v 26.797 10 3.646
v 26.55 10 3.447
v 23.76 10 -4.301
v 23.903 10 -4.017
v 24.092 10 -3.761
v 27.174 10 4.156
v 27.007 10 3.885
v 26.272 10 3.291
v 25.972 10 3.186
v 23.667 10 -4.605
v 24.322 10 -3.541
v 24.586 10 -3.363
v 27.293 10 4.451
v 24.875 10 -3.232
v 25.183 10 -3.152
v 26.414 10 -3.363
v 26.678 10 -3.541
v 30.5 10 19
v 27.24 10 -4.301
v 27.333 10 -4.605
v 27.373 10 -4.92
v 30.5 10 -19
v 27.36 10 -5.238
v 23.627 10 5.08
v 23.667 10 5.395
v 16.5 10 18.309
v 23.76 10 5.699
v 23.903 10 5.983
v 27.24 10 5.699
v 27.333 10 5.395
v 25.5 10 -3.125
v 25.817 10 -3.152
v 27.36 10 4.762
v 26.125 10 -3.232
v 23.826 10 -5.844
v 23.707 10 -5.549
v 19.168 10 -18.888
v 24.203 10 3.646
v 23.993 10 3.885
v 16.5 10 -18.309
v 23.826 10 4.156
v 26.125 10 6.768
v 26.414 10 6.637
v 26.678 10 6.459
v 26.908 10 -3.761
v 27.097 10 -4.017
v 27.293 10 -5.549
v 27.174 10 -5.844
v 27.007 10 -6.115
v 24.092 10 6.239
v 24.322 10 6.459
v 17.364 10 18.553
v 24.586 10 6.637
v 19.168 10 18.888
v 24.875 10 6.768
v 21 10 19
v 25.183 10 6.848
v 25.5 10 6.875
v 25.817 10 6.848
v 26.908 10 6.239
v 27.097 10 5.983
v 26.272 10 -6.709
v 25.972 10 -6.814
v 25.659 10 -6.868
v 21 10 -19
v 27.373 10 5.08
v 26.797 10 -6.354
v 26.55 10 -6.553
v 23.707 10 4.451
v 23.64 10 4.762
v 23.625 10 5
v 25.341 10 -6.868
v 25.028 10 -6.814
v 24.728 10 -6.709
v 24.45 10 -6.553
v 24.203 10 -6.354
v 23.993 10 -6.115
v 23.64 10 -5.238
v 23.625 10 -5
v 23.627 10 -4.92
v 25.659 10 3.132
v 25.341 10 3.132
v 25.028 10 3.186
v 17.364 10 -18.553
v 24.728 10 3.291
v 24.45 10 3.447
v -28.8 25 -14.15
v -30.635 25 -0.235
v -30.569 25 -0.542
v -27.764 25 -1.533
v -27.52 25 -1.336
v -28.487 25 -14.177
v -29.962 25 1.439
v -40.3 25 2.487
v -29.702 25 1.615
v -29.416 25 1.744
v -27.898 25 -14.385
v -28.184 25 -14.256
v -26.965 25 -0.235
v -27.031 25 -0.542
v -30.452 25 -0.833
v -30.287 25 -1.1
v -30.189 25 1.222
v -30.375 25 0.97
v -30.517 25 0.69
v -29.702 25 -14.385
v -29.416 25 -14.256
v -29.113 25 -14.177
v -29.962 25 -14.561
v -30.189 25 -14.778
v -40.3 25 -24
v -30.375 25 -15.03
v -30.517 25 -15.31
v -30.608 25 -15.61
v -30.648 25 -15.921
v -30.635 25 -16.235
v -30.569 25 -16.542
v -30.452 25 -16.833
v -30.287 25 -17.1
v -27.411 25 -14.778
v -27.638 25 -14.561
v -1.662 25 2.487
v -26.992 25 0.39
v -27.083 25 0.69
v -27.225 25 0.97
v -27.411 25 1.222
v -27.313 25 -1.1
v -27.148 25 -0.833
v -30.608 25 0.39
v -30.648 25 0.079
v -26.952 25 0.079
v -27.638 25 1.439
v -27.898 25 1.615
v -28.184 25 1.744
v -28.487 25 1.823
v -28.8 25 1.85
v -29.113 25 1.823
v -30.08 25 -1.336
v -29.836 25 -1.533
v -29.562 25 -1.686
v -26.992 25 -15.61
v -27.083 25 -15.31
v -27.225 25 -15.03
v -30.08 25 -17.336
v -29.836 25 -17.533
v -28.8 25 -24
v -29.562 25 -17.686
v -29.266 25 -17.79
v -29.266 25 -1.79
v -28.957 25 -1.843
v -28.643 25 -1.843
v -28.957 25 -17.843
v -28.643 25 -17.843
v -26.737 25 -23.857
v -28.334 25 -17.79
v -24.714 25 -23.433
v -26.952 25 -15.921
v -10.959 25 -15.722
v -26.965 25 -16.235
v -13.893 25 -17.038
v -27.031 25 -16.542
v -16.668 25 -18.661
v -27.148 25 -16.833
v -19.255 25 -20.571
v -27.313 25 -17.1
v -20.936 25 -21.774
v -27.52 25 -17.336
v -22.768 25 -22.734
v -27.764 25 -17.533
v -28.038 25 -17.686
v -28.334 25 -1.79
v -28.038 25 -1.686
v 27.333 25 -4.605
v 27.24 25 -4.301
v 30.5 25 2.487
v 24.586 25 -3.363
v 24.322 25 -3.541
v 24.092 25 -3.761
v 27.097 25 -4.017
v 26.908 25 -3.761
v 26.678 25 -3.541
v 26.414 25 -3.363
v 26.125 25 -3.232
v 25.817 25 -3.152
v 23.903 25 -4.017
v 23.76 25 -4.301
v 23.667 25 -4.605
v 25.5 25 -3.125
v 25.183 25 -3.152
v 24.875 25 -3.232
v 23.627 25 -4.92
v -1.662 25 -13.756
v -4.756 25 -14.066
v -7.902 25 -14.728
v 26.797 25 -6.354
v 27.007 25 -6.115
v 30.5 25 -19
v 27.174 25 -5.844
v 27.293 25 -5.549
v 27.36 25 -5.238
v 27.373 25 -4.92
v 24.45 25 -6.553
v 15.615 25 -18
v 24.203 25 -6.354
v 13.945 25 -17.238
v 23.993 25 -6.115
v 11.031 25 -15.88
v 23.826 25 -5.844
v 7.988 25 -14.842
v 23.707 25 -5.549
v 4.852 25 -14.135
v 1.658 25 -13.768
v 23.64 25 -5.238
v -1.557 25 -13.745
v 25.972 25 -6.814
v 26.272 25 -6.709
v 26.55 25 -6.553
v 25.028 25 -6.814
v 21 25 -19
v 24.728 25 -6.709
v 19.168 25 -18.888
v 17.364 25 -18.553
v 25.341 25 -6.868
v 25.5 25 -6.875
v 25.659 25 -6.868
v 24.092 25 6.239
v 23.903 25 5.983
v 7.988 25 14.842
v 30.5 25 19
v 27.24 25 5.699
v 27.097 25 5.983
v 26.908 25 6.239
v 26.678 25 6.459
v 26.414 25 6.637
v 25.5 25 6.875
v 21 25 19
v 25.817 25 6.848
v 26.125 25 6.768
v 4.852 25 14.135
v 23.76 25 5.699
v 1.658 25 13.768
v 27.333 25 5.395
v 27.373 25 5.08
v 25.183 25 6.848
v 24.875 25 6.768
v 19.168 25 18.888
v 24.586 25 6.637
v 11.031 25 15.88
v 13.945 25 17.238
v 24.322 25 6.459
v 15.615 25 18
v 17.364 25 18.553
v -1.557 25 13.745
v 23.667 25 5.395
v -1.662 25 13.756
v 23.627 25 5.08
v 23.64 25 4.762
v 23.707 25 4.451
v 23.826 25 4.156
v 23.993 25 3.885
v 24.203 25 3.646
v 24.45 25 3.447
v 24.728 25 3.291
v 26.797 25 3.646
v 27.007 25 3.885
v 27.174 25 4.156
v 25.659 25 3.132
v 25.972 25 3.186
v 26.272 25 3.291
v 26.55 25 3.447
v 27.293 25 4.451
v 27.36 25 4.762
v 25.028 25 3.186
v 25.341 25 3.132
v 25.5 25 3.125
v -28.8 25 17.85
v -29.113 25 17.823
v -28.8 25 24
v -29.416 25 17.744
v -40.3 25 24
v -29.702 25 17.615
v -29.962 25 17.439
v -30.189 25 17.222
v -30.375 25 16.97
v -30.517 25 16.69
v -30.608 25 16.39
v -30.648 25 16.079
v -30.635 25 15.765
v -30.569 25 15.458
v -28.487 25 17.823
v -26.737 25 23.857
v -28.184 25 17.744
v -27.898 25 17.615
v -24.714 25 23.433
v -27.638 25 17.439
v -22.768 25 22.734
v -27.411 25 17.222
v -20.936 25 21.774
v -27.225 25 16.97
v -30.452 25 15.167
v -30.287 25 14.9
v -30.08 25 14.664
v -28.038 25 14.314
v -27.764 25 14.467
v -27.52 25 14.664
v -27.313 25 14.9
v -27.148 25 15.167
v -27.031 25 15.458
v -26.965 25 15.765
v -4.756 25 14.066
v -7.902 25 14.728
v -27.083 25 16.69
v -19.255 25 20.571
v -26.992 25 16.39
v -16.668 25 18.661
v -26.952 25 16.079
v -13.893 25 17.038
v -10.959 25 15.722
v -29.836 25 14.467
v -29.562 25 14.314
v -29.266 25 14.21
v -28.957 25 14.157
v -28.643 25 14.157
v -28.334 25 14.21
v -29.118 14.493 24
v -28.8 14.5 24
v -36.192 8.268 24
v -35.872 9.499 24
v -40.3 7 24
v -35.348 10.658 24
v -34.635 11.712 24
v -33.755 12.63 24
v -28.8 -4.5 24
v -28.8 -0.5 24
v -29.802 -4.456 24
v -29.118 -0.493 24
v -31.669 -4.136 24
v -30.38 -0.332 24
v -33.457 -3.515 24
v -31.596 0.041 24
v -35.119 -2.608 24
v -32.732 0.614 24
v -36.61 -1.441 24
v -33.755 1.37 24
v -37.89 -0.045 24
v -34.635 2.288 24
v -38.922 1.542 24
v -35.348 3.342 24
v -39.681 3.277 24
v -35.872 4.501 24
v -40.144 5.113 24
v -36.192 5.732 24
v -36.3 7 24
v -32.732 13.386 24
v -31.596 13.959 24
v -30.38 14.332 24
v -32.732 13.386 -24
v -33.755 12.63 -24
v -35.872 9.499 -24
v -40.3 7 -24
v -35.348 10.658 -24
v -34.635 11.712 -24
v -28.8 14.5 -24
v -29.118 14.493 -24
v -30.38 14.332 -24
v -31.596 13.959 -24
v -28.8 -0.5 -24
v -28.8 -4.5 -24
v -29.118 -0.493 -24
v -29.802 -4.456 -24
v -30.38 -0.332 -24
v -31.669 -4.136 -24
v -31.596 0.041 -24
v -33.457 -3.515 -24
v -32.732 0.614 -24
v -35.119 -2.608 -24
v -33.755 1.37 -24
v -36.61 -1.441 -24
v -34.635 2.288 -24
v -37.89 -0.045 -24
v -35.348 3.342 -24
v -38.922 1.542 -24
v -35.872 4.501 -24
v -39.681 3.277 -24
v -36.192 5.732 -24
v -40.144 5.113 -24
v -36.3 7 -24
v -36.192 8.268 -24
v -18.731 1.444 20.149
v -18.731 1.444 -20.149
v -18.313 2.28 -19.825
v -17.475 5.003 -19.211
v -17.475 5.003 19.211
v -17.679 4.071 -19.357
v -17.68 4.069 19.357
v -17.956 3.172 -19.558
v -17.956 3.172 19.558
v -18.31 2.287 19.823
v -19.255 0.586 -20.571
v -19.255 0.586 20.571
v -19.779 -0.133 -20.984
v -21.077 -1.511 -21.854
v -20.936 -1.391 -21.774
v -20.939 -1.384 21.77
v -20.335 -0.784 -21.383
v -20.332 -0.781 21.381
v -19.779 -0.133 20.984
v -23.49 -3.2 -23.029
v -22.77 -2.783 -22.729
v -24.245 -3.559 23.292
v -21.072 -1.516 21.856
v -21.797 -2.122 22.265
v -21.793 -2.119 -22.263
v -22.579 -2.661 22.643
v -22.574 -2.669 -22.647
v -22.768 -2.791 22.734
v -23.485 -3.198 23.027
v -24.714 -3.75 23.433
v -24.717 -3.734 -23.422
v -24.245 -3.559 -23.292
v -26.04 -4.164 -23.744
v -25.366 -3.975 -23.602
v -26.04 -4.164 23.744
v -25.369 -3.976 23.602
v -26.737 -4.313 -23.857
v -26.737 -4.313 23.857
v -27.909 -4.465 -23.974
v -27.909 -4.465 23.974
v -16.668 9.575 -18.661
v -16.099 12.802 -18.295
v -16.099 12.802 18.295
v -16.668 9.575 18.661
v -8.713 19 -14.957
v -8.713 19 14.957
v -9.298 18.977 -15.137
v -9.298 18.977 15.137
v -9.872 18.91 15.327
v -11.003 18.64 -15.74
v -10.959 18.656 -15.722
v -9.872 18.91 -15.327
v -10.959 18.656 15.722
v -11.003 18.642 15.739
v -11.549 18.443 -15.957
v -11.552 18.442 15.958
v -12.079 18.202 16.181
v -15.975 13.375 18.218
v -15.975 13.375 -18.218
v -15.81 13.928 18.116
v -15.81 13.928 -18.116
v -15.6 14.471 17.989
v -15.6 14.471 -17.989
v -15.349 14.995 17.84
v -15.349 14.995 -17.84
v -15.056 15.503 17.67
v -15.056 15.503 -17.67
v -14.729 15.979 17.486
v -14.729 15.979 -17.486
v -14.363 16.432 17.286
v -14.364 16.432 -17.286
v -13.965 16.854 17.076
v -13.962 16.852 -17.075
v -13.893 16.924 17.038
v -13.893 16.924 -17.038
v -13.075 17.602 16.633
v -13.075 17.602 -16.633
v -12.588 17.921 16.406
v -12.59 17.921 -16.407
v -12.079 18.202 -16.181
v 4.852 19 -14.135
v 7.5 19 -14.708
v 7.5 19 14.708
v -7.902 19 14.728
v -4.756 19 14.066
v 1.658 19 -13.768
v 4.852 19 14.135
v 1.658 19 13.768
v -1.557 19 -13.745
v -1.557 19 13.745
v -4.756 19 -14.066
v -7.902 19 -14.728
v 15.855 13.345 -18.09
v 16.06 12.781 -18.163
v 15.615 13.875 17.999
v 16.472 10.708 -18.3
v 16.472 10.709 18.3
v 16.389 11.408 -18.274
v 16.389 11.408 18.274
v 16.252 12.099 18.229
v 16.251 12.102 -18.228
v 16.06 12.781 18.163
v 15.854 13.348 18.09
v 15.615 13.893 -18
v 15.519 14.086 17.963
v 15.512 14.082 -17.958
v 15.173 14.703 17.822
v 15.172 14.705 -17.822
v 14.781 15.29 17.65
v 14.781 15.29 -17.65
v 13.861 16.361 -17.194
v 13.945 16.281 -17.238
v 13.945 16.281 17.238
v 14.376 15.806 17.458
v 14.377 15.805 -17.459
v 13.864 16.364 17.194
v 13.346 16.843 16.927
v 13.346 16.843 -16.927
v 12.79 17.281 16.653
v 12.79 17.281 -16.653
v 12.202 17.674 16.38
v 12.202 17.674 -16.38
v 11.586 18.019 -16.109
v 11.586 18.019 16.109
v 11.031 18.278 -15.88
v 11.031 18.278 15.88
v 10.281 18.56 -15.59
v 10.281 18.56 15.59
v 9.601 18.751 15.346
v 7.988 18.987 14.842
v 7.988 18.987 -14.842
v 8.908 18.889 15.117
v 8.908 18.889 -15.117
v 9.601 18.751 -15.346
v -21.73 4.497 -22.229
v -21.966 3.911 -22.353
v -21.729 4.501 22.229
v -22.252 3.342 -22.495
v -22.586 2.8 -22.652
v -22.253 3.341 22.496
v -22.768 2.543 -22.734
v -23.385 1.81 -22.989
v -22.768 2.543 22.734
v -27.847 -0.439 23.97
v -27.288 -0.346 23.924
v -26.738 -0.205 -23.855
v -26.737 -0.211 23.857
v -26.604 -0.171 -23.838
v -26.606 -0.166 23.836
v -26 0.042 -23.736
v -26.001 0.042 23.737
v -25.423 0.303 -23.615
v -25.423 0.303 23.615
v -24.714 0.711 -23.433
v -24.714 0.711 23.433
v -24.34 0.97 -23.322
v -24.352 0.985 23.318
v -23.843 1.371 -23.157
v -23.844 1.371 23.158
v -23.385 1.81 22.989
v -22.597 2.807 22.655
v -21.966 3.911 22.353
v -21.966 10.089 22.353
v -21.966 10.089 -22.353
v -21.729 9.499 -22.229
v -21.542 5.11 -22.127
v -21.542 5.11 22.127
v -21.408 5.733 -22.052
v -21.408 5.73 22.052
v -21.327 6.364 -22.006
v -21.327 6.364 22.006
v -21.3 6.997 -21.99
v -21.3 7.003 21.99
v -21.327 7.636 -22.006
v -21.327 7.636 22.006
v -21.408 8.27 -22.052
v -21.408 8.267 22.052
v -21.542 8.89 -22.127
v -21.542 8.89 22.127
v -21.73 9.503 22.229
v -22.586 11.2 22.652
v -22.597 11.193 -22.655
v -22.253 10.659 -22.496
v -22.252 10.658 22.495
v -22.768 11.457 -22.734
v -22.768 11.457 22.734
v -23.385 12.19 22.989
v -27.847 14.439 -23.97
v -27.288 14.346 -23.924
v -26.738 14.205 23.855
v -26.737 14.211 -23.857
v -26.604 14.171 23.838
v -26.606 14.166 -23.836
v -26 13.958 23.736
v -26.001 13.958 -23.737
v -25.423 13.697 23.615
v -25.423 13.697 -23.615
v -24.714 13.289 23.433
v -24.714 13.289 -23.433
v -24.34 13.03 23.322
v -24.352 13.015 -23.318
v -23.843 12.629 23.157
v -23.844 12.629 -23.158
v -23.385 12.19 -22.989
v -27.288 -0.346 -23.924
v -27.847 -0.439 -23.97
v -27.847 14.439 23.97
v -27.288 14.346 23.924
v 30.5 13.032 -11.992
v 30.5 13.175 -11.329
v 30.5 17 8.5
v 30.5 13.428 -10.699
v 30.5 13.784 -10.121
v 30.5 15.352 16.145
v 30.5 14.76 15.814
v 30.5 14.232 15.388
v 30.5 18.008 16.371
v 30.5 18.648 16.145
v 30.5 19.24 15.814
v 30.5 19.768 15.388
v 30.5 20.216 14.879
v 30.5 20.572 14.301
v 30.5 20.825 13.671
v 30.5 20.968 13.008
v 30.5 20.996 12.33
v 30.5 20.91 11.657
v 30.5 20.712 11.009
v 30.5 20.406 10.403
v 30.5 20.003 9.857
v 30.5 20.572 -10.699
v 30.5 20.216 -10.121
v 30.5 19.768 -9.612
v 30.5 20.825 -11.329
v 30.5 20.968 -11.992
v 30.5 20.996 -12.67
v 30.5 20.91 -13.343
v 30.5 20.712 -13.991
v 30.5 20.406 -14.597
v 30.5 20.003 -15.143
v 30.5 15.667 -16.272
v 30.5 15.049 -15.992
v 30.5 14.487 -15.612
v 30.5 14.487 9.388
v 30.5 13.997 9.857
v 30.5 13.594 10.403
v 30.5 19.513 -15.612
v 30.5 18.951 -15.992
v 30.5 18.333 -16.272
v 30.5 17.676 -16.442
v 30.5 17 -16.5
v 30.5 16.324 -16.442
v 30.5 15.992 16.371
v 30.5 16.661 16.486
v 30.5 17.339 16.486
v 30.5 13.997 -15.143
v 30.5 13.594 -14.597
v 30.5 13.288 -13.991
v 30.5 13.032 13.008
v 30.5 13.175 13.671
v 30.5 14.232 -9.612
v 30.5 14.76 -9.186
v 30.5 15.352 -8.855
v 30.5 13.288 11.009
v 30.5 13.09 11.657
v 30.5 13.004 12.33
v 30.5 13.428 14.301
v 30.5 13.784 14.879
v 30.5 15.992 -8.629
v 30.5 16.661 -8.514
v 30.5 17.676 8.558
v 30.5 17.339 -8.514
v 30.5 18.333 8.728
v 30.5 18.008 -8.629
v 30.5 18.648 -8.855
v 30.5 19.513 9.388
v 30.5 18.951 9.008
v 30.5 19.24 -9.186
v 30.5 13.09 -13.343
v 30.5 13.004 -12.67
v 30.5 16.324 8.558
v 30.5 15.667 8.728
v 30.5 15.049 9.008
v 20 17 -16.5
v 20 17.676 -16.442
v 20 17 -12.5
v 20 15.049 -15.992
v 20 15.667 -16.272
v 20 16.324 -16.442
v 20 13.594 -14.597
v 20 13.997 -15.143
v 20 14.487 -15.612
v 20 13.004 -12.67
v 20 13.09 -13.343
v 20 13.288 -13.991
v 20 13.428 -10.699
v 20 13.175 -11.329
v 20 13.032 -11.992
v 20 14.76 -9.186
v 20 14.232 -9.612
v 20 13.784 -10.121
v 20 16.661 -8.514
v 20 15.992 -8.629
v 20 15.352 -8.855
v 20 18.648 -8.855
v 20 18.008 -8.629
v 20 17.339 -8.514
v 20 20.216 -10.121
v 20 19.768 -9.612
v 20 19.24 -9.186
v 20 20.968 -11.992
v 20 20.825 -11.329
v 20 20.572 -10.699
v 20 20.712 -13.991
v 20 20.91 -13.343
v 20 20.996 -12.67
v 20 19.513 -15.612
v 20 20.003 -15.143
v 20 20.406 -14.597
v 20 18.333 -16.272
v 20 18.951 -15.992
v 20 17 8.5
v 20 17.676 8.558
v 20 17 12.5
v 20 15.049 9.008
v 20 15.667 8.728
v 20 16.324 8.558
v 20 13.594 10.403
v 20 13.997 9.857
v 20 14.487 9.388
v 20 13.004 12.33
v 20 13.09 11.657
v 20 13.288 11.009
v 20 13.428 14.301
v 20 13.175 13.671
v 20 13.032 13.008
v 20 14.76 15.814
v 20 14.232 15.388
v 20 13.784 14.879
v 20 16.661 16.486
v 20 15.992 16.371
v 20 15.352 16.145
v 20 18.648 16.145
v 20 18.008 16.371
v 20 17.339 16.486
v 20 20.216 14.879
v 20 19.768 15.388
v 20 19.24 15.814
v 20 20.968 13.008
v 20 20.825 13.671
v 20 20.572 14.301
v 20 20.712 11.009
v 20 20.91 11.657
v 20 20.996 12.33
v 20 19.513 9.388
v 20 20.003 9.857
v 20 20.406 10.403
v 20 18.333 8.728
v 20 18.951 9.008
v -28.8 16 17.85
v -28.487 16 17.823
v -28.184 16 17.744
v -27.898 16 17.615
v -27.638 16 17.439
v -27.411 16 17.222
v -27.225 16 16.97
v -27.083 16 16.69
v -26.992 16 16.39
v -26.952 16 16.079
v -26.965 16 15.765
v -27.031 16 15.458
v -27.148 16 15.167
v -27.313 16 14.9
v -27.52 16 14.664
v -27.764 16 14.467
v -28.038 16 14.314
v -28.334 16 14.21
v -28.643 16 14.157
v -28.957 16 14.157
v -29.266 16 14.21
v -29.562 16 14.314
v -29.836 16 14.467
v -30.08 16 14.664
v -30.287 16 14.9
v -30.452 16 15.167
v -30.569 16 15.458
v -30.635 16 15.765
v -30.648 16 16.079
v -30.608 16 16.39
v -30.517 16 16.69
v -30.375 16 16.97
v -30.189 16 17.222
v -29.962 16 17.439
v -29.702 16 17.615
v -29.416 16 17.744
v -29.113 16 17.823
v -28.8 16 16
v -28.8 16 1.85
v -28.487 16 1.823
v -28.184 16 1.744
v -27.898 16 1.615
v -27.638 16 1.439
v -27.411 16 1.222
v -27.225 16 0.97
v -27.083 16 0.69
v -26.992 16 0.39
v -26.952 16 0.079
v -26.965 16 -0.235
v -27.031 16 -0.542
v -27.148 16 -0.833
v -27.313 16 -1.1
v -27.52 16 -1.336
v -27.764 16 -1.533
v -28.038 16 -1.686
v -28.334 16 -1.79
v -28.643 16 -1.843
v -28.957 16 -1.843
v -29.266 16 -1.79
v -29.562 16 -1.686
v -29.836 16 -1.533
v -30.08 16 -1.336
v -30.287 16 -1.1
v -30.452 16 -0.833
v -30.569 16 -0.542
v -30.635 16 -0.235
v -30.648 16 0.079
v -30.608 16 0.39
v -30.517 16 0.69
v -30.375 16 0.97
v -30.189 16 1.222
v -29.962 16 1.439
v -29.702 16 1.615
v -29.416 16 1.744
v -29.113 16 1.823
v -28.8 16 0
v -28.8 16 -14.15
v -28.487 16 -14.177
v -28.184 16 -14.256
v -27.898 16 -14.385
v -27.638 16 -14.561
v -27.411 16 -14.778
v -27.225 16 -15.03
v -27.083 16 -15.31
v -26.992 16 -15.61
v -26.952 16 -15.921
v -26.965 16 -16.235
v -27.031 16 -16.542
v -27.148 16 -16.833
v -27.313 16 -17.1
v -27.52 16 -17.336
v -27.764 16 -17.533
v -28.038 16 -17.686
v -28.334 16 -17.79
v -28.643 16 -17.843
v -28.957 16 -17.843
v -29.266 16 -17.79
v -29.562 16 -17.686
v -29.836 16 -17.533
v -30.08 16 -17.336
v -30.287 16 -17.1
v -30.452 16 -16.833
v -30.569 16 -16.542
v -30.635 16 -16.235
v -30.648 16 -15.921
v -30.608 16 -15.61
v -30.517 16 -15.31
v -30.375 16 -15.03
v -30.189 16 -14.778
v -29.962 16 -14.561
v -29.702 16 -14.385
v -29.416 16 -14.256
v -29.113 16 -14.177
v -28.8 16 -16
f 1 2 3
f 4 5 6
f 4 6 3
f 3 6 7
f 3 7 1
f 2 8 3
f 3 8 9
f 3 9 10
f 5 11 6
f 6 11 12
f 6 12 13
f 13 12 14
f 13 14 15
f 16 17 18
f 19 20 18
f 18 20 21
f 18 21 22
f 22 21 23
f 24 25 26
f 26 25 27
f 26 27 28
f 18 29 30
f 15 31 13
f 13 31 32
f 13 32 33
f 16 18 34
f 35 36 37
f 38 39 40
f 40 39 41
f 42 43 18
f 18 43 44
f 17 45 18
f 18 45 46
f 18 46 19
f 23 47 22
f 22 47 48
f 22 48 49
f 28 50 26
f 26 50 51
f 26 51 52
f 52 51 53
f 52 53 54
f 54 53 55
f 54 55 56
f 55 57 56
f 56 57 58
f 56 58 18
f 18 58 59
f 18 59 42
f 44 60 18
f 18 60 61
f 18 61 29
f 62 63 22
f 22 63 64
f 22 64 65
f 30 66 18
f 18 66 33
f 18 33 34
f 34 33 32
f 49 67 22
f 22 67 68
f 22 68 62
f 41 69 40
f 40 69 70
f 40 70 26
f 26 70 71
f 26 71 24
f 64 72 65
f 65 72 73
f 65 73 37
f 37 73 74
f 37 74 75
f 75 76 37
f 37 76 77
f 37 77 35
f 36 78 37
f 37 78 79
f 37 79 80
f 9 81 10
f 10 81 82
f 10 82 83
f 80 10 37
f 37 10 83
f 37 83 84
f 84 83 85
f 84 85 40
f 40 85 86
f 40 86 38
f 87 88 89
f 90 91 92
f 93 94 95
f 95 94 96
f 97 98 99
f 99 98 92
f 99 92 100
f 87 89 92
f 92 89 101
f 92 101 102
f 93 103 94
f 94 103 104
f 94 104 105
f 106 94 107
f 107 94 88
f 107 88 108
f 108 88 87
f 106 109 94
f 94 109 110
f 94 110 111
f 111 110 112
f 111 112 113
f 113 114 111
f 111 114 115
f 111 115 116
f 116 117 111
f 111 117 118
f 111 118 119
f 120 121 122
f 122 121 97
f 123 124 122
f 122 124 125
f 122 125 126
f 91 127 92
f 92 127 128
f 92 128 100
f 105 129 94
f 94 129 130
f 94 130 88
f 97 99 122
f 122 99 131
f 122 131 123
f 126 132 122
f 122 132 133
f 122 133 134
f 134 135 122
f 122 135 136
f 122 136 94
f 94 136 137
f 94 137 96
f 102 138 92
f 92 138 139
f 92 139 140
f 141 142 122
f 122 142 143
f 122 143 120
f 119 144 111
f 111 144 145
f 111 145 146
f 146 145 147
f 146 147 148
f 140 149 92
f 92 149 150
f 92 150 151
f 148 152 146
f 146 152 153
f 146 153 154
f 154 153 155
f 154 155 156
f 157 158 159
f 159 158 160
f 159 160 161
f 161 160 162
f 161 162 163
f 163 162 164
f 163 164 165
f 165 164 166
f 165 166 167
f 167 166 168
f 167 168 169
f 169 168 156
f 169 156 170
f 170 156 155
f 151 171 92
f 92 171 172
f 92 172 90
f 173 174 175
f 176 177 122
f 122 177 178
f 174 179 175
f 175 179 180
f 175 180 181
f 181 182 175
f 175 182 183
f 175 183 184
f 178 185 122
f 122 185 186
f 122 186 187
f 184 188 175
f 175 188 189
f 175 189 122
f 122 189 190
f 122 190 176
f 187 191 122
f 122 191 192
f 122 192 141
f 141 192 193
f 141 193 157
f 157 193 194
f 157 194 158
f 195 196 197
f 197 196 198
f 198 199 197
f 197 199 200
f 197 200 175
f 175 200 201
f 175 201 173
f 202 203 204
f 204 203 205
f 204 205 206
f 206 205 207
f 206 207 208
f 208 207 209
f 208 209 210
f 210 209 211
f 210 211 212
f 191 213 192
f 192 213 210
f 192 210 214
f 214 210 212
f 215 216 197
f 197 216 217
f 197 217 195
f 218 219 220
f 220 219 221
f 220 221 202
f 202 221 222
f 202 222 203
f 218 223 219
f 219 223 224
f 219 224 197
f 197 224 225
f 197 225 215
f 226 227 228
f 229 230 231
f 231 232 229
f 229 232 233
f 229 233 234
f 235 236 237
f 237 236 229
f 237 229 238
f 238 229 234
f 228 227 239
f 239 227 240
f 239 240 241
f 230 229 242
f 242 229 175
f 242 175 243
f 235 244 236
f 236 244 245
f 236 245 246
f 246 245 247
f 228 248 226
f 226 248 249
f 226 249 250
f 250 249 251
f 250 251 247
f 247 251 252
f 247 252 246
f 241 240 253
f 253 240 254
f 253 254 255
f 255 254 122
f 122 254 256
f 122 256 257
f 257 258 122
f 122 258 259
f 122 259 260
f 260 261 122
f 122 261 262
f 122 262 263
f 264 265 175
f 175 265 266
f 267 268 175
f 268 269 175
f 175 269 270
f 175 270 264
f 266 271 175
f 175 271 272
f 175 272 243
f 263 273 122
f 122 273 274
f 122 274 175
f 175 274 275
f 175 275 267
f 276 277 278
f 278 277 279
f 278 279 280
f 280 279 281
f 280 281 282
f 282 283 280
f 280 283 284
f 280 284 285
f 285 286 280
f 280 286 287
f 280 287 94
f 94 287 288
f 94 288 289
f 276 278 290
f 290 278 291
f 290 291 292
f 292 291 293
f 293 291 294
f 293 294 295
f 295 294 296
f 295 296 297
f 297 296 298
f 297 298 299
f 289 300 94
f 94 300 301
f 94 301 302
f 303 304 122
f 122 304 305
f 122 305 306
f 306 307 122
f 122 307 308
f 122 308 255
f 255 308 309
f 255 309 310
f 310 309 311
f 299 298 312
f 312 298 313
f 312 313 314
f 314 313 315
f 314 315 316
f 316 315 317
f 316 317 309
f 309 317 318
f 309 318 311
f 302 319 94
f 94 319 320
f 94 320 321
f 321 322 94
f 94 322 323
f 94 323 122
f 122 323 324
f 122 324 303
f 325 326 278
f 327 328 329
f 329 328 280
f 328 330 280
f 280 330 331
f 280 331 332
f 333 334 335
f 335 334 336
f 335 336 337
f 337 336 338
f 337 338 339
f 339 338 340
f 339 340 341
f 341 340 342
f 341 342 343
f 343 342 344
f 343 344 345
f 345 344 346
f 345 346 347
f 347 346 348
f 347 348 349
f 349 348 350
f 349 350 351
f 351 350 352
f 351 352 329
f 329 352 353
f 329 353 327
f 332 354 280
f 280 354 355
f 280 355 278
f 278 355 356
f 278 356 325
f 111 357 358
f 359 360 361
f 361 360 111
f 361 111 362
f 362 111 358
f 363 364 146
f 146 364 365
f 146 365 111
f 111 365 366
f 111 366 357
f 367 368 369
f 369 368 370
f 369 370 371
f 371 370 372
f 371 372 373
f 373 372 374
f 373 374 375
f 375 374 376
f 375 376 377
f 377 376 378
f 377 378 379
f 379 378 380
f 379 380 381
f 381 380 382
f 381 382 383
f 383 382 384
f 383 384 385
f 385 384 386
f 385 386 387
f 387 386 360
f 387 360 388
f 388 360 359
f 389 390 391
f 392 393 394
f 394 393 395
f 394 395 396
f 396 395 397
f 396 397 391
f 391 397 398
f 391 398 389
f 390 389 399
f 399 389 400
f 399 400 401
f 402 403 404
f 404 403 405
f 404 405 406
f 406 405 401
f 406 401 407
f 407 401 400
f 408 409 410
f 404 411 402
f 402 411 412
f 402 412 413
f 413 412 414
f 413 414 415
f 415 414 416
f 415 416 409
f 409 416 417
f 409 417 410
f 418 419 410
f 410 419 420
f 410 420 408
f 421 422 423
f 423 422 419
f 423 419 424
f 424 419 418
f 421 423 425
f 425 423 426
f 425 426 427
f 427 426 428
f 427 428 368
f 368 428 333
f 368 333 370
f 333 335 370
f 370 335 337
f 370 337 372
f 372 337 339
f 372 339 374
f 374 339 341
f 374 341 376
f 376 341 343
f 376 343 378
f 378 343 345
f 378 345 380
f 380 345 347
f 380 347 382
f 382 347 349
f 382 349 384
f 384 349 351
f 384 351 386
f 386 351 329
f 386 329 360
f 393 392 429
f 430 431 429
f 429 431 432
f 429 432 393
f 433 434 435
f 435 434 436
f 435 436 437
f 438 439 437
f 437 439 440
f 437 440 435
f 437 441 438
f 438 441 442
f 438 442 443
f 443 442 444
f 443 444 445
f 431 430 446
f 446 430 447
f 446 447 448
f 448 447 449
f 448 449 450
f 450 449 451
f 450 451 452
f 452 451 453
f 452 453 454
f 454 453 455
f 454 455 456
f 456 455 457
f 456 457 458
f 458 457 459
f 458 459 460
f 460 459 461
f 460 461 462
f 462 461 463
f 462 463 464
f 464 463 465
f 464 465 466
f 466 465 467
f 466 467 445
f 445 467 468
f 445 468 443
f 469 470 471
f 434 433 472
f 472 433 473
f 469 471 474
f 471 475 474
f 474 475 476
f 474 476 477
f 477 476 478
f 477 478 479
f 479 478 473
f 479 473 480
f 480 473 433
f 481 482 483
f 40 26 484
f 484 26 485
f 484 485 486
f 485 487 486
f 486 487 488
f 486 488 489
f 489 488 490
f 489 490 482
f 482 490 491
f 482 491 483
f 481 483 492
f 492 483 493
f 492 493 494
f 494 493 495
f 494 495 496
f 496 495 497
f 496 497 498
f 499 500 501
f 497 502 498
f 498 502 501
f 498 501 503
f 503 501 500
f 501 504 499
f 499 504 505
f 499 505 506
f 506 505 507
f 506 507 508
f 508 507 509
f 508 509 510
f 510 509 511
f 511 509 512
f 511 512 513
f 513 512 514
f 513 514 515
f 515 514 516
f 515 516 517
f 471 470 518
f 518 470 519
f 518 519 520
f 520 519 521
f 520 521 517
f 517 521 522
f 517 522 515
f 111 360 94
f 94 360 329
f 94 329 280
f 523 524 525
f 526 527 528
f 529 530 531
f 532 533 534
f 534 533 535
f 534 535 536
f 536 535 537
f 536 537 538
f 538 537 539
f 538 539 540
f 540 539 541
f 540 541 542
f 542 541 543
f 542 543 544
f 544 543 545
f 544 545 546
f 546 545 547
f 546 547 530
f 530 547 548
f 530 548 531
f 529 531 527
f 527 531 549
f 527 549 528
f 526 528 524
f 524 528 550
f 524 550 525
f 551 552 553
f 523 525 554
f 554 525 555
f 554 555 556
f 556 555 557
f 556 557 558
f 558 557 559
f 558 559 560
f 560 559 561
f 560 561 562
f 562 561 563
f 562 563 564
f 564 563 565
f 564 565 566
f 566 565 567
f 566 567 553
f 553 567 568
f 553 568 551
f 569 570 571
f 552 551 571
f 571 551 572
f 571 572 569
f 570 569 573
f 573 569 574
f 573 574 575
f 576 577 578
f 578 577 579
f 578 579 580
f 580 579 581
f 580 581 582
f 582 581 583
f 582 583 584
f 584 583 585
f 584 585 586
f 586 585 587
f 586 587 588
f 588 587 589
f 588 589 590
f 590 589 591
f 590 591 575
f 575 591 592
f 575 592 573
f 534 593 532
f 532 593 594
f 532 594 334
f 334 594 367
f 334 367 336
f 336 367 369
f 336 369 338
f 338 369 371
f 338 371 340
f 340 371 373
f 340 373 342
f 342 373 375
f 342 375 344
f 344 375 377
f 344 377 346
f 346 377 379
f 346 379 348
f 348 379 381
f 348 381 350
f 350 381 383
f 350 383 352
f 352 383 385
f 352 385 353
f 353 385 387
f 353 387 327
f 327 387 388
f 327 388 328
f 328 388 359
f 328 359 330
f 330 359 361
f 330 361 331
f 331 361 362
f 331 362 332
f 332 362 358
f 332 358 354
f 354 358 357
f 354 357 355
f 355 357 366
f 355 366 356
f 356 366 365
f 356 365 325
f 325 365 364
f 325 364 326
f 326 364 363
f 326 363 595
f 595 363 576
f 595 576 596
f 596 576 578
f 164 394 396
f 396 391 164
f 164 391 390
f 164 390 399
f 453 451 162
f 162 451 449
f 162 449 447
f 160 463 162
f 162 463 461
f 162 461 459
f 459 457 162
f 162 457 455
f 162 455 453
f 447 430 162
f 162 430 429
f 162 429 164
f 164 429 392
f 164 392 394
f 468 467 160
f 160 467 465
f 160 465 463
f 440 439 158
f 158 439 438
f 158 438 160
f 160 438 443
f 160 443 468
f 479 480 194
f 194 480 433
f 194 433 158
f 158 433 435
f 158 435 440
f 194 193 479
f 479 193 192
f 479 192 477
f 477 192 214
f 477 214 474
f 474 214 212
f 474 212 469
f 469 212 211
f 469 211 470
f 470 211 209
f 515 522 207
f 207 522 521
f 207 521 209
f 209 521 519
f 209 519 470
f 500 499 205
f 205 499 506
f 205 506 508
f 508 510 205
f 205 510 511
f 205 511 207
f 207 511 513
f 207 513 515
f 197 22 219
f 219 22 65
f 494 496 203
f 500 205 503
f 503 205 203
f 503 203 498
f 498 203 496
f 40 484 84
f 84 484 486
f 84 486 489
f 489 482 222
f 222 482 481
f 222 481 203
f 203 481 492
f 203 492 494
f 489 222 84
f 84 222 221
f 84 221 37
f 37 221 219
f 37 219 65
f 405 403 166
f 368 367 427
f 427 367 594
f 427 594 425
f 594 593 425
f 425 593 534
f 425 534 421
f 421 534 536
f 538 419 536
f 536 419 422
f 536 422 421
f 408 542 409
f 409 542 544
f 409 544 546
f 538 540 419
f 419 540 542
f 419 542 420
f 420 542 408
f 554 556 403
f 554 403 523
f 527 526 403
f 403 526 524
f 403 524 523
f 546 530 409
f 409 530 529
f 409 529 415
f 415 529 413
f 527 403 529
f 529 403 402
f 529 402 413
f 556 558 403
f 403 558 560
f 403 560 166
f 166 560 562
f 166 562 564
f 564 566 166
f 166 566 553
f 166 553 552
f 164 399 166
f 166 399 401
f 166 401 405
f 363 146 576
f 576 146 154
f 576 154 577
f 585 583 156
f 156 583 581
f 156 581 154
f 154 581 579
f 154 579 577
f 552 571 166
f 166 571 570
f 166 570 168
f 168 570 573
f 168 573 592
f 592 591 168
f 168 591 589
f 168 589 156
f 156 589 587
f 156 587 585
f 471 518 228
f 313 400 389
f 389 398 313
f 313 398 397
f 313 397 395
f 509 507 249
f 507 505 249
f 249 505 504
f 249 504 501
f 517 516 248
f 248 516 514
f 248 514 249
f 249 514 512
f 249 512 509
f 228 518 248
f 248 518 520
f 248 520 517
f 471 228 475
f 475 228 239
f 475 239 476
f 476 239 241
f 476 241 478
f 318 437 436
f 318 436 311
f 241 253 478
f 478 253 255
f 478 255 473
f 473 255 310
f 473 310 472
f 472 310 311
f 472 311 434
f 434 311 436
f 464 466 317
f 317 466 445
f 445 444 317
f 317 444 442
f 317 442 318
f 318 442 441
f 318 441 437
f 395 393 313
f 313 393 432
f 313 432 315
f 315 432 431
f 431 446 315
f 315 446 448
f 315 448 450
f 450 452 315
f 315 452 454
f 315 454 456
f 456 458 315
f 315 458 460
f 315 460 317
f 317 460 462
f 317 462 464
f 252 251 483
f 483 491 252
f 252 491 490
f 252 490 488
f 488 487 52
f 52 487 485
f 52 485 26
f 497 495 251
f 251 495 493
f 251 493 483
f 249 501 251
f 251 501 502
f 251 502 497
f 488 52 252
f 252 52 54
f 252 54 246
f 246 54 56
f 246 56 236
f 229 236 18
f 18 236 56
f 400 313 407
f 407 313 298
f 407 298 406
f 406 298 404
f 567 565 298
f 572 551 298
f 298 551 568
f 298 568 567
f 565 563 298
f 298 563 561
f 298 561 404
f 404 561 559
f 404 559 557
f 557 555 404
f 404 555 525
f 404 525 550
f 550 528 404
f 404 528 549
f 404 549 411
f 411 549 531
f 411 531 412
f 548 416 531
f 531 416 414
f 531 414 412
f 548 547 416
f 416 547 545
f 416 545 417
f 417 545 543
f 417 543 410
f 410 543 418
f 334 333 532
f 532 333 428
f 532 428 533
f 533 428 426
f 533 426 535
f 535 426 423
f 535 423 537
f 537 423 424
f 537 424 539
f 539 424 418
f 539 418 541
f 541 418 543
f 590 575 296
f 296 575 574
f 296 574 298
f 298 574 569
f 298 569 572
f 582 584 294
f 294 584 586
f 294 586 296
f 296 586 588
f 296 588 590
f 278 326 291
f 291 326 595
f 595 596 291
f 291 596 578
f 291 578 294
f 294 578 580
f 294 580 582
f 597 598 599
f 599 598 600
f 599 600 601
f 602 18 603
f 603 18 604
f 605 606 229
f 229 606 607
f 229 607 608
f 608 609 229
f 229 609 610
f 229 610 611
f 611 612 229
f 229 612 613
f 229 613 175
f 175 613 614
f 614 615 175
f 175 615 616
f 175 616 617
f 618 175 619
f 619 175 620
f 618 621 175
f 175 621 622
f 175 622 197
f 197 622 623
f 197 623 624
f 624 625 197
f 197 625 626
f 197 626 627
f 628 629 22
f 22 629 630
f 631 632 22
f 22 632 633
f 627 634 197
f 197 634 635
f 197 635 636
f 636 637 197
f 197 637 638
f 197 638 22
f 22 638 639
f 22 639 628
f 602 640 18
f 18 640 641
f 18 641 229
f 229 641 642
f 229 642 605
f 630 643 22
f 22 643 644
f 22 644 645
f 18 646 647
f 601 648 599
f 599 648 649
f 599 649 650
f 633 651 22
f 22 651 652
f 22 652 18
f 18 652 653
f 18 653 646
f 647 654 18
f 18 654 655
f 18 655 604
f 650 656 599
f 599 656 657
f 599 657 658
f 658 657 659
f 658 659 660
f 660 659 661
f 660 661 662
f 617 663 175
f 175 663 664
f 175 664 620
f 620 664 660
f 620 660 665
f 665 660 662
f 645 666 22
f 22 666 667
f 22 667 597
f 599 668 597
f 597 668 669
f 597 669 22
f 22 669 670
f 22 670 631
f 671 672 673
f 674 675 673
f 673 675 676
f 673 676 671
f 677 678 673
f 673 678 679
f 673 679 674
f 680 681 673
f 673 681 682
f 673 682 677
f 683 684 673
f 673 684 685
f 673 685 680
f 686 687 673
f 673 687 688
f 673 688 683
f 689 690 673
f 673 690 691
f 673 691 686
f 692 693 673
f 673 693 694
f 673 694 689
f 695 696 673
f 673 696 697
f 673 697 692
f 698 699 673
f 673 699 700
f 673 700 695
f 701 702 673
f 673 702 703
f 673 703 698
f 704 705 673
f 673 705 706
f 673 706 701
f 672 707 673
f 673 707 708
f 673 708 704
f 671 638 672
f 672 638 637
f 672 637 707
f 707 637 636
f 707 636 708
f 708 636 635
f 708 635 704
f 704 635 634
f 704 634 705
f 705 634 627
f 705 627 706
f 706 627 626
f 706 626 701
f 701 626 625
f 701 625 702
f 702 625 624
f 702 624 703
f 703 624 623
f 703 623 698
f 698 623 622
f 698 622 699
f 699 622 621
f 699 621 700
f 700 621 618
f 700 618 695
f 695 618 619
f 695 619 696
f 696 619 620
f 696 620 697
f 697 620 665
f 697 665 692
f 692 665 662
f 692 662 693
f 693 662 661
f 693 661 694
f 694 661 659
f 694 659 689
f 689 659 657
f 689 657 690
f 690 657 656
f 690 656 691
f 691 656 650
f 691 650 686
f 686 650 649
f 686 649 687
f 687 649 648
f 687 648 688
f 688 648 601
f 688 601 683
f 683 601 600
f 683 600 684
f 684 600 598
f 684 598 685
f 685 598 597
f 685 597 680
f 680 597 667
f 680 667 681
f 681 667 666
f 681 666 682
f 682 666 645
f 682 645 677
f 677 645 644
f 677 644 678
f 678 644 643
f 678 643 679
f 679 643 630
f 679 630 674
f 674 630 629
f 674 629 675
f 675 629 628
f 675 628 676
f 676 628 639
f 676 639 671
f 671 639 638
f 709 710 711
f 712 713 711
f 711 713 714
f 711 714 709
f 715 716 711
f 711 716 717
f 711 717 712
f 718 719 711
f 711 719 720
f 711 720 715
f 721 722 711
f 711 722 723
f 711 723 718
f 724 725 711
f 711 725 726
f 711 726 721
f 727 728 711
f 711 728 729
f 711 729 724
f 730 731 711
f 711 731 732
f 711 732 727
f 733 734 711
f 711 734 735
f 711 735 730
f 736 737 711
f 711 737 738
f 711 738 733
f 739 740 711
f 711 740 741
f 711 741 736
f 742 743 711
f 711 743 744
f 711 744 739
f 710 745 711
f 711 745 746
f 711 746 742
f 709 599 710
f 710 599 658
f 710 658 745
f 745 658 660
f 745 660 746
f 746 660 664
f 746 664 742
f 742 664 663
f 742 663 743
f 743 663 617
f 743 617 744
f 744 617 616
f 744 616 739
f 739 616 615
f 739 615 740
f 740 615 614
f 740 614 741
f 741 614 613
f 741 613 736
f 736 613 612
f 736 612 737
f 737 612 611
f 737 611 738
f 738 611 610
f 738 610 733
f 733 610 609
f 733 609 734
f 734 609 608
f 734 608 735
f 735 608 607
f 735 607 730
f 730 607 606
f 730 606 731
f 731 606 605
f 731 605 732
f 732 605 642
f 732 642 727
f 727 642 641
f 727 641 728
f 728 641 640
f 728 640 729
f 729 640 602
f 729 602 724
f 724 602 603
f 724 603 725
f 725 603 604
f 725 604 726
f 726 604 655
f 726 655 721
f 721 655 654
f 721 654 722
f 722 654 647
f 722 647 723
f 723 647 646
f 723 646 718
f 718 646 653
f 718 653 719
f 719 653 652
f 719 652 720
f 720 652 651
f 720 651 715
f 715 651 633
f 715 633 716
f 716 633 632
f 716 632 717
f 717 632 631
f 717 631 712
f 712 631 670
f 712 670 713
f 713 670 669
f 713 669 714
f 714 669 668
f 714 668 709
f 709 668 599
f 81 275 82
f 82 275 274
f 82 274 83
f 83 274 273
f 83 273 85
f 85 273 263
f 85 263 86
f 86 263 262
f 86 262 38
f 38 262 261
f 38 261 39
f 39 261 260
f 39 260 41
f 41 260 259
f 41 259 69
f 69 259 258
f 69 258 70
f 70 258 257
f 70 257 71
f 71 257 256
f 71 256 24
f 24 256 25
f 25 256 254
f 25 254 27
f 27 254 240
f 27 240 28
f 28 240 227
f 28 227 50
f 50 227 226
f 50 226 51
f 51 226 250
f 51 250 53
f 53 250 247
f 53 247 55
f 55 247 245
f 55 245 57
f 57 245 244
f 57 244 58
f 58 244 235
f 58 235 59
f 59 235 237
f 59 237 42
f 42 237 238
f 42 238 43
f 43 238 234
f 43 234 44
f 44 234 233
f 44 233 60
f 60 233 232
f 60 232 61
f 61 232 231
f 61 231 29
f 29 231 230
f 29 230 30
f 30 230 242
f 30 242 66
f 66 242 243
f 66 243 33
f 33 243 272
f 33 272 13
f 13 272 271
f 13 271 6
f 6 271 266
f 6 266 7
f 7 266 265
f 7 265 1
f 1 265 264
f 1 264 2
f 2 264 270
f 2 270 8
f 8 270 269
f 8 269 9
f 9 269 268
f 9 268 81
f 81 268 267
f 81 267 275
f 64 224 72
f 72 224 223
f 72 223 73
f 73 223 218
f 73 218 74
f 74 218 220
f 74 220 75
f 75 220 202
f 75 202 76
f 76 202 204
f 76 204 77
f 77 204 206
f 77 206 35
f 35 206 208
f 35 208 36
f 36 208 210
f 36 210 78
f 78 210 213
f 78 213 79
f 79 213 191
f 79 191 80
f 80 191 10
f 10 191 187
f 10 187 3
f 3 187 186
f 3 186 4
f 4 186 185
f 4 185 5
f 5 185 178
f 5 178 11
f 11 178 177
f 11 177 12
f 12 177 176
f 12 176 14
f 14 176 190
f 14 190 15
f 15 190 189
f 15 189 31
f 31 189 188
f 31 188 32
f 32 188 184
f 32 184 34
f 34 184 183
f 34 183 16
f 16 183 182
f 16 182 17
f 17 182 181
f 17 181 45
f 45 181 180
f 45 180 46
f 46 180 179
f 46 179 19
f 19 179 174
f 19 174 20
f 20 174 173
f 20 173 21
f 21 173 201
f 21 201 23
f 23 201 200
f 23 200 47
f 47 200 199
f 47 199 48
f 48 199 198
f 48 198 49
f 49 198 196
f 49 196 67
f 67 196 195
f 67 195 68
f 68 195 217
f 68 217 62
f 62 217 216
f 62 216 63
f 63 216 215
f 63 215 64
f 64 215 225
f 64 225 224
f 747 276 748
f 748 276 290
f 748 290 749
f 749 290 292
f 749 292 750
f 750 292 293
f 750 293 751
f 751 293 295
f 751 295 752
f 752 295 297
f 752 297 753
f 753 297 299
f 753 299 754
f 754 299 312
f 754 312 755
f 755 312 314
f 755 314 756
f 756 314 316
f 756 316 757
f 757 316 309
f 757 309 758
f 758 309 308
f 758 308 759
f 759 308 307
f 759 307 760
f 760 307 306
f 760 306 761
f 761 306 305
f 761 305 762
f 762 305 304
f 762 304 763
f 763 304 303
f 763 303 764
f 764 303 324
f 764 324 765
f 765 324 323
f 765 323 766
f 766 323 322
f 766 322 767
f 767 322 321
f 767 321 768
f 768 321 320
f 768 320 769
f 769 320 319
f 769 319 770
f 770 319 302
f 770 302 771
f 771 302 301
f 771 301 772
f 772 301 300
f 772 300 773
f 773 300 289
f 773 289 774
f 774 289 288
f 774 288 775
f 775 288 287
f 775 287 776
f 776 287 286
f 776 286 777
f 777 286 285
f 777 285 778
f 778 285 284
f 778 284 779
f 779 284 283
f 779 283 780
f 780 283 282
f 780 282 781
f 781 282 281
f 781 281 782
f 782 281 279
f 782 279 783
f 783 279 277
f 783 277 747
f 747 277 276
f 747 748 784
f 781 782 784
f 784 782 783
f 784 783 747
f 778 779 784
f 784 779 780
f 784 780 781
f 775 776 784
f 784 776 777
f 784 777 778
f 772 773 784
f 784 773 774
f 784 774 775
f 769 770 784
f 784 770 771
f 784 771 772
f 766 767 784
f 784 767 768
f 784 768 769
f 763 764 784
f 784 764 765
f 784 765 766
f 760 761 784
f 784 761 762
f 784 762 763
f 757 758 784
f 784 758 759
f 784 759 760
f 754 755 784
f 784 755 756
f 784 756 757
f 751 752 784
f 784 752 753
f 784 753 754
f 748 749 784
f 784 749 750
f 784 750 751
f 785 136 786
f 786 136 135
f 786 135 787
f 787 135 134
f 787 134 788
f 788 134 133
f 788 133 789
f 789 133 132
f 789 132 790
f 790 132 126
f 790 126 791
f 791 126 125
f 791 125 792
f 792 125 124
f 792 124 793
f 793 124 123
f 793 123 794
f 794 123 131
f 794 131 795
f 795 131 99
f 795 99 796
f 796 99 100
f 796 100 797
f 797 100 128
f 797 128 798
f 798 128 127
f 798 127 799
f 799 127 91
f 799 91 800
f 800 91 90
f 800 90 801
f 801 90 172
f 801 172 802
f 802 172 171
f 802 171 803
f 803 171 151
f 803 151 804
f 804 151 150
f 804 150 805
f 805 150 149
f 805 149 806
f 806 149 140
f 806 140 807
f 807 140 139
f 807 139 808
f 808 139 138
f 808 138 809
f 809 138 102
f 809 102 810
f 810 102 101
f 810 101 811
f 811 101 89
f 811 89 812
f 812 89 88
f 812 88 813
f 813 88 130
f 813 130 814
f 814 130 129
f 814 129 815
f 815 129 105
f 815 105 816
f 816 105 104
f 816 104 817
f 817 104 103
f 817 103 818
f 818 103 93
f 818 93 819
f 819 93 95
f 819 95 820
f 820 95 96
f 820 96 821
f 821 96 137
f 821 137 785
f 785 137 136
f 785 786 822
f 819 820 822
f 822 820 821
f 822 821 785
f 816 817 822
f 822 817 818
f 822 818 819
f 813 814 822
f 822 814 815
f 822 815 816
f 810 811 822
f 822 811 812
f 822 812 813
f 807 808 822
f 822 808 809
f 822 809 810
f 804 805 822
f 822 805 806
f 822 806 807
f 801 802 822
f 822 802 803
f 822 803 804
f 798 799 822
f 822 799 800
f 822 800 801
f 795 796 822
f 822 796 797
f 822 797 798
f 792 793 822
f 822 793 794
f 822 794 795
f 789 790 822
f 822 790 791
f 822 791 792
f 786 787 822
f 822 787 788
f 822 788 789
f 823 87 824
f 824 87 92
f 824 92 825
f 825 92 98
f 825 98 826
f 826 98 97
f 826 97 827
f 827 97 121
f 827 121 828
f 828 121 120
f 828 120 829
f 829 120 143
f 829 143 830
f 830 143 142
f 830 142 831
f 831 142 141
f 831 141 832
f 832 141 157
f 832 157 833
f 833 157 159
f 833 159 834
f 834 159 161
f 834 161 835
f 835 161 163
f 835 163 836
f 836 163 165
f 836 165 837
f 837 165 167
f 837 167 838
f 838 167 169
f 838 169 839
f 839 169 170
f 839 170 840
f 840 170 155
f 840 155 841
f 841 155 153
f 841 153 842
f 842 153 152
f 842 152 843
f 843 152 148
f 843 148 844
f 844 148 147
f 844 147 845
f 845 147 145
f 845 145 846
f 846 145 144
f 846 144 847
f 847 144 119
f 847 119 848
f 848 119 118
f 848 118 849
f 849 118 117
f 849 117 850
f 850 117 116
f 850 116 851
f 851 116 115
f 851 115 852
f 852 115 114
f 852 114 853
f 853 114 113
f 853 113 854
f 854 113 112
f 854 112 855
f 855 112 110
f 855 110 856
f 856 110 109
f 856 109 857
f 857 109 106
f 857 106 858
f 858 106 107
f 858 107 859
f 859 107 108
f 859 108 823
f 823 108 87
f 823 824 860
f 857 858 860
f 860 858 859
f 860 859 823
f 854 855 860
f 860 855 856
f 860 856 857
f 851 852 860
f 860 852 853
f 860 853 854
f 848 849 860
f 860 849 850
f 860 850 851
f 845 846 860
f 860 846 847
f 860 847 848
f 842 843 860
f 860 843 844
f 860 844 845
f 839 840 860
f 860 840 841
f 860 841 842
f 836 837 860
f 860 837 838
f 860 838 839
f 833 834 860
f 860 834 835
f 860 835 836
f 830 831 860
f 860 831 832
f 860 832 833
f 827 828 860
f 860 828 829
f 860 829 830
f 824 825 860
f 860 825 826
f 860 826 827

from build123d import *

# Parameters (mm, degrees)
SKETCH1_R               = 7.5
BOSS_EXTRUDE1_DEPTH     = 24
SKETCH2_R               = 4
CUT_EXTRUDE1_DEPTH      = 5
CUT_EXTRUDE2_DEPTH      = 56.410648796
CUT_EXTRUDE2_DEPTH_BACK = 56.410648796
BOSS_EXTRUDE2_START     = 5.5
SKETCH4_W               = 38
SKETCH4_H               = 15
SKETCH4_R               = 4
BOSS_EXTRUDE2_DEPTH     = 5.5
CUT_EXTRUDE3_DEPTH      = 56.410648965
CUT_EXTRUDE3_DEPTH_BACK = 56.410648965
SKETCH5_R               = 1.875
SKETCH6_R               = 1.85
CUT_EXTRUDE4_DEPTH      = 9


with BuildPart() as part:
    # Sketch1 → Boss-Extrude1 (new, symmetric)
    with BuildSketch(Plane.XY):
        with BuildLine():
            Line((-17.47471084, 5.003045957), (-16.099481109, 12.802361333))
            ThreePointArc((-16.099481109, 12.802361333), (-13.534330034, 17.245333323), (-8.713422961, 19))
            Line((-8.713422961, 19), (7.5, 19))
            ThreePointArc((7.5, 19), (13.863961031, 16.363961031), (16.5, 10))
            Line((16.5, 10), (25, 10))
            Line((25, 10), (25, 25))
            Line((25, 25), (12.627503281, 25))
            Line((12.627503281, 25), (-40.3, 25))
            Line((-40.3, 25), (-40.3, 7))
            ThreePointArc((-40.3, 7), (-29.802291042, -4.456239028), (-17.47471084, 5.003045957))
        make_face()
        with Locations((-28.8, 7)):
            Circle(SKETCH1_R, mode=Mode.SUBTRACT)
    extrude(amount=BOSS_EXTRUDE1_DEPTH, both=True)

    # Sketch2 → Cut-Extrude1 (cut)
    with BuildSketch(Plane(origin=(25, 0, 0), x_dir=(0, 0, -1), z_dir=(1, 0, 0))):
        with Locations((-12.5, 17)):
            Circle(SKETCH2_R)
        with Locations((12.5, 17)):
            Circle(SKETCH2_R)
    extrude(amount=-CUT_EXTRUDE1_DEPTH, mode=Mode.SUBTRACT)

    # Sketch3 → Cut-Extrude2 (cut, two sides: drawn at the far end of the back side and taken through both)
    with BuildSketch(Plane(origin=(0, 25, 0), x_dir=(1, 0, 0), z_dir=(0, 1, 0)).offset(-CUT_EXTRUDE2_DEPTH_BACK)):
        with BuildLine():
            Line((-28.8, -24), (25, -24))
            Line((25, -24), (25, -19))
            Line((25, -19), (21, -19))
            ThreePointArc((21, -19), (17.364289008, -18.552718151), (13.94540302, -17.237547411))
            ThreePointArc((13.94540302, -17.237547411), (-3.160771505, -13.862715808), (-19.25459698, -20.570880744))
            ThreePointArc((-19.25459698, -20.570880744), (-23.728669364, -23.116713696), (-28.8, -24))
        make_face()
        with BuildLine():
            Line((21, 19), (25, 19))
            Line((25, 19), (25, 24))
            Line((25, 24), (-28.8, 24))
            ThreePointArc((-28.8, 24), (-23.728669364, 23.116713696), (-19.25459698, 20.570880744))
            ThreePointArc((-19.25459698, 20.570880744), (-3.160771505, 13.862715808), (13.94540302, 17.237547411))
            ThreePointArc((13.94540302, 17.237547411), (17.364289008, 18.552718151), (21, 19))
        make_face()
    extrude(amount=CUT_EXTRUDE2_DEPTH + CUT_EXTRUDE2_DEPTH_BACK, mode=Mode.SUBTRACT)

    # Sketch4 → Boss-Extrude2 (add)
    with BuildSketch(Plane(origin=(25, 0, 0), x_dir=(0, 0, -1), z_dir=(1, 0, 0)).offset(BOSS_EXTRUDE2_START)):
        with Locations((0, 17.5)):
            Rectangle(SKETCH4_W, SKETCH4_H)
        with Locations((12.5, 17)):
            Circle(SKETCH4_R, mode=Mode.SUBTRACT)
        with Locations((-12.5, 17)):
            Circle(SKETCH4_R, mode=Mode.SUBTRACT)
    extrude(amount=-BOSS_EXTRUDE2_DEPTH)

    # Sketch5 → Cut-Extrude3 (cut, two sides: drawn at the far end of the back side and taken through both)
    with BuildSketch(Plane(origin=(0, 25, 0), x_dir=(1, 0, 0), z_dir=(0, 1, 0)).offset(-CUT_EXTRUDE3_DEPTH_BACK)):
        with Locations(Location((25.5, -5, 0), (0, 0, 180))):
            Circle(SKETCH5_R)
        with Locations(Location((25.5, 5, 0), (0, 0, 180))):
            Circle(SKETCH5_R)
    extrude(amount=CUT_EXTRUDE3_DEPTH + CUT_EXTRUDE3_DEPTH_BACK, mode=Mode.SUBTRACT)

    # Sketch6 → Cut-Extrude4 (cut)
    with BuildSketch(Plane(origin=(0, 25, 0), x_dir=(1, 0, 0), z_dir=(0, 1, 0))):
        with Locations(Location((-28.8, 16, 0), (0, 0, 270))):
            Circle(SKETCH6_R)
        with Locations(Location((-28.8, 0, 0), (0, 0, 270))):
            Circle(SKETCH6_R)
        with Locations(Location((-28.8, -16, 0), (0, 0, 270))):
            Circle(SKETCH6_R)
    extrude(amount=-CUT_EXTRUDE4_DEPTH, mode=Mode.SUBTRACT)


solid = part.part
